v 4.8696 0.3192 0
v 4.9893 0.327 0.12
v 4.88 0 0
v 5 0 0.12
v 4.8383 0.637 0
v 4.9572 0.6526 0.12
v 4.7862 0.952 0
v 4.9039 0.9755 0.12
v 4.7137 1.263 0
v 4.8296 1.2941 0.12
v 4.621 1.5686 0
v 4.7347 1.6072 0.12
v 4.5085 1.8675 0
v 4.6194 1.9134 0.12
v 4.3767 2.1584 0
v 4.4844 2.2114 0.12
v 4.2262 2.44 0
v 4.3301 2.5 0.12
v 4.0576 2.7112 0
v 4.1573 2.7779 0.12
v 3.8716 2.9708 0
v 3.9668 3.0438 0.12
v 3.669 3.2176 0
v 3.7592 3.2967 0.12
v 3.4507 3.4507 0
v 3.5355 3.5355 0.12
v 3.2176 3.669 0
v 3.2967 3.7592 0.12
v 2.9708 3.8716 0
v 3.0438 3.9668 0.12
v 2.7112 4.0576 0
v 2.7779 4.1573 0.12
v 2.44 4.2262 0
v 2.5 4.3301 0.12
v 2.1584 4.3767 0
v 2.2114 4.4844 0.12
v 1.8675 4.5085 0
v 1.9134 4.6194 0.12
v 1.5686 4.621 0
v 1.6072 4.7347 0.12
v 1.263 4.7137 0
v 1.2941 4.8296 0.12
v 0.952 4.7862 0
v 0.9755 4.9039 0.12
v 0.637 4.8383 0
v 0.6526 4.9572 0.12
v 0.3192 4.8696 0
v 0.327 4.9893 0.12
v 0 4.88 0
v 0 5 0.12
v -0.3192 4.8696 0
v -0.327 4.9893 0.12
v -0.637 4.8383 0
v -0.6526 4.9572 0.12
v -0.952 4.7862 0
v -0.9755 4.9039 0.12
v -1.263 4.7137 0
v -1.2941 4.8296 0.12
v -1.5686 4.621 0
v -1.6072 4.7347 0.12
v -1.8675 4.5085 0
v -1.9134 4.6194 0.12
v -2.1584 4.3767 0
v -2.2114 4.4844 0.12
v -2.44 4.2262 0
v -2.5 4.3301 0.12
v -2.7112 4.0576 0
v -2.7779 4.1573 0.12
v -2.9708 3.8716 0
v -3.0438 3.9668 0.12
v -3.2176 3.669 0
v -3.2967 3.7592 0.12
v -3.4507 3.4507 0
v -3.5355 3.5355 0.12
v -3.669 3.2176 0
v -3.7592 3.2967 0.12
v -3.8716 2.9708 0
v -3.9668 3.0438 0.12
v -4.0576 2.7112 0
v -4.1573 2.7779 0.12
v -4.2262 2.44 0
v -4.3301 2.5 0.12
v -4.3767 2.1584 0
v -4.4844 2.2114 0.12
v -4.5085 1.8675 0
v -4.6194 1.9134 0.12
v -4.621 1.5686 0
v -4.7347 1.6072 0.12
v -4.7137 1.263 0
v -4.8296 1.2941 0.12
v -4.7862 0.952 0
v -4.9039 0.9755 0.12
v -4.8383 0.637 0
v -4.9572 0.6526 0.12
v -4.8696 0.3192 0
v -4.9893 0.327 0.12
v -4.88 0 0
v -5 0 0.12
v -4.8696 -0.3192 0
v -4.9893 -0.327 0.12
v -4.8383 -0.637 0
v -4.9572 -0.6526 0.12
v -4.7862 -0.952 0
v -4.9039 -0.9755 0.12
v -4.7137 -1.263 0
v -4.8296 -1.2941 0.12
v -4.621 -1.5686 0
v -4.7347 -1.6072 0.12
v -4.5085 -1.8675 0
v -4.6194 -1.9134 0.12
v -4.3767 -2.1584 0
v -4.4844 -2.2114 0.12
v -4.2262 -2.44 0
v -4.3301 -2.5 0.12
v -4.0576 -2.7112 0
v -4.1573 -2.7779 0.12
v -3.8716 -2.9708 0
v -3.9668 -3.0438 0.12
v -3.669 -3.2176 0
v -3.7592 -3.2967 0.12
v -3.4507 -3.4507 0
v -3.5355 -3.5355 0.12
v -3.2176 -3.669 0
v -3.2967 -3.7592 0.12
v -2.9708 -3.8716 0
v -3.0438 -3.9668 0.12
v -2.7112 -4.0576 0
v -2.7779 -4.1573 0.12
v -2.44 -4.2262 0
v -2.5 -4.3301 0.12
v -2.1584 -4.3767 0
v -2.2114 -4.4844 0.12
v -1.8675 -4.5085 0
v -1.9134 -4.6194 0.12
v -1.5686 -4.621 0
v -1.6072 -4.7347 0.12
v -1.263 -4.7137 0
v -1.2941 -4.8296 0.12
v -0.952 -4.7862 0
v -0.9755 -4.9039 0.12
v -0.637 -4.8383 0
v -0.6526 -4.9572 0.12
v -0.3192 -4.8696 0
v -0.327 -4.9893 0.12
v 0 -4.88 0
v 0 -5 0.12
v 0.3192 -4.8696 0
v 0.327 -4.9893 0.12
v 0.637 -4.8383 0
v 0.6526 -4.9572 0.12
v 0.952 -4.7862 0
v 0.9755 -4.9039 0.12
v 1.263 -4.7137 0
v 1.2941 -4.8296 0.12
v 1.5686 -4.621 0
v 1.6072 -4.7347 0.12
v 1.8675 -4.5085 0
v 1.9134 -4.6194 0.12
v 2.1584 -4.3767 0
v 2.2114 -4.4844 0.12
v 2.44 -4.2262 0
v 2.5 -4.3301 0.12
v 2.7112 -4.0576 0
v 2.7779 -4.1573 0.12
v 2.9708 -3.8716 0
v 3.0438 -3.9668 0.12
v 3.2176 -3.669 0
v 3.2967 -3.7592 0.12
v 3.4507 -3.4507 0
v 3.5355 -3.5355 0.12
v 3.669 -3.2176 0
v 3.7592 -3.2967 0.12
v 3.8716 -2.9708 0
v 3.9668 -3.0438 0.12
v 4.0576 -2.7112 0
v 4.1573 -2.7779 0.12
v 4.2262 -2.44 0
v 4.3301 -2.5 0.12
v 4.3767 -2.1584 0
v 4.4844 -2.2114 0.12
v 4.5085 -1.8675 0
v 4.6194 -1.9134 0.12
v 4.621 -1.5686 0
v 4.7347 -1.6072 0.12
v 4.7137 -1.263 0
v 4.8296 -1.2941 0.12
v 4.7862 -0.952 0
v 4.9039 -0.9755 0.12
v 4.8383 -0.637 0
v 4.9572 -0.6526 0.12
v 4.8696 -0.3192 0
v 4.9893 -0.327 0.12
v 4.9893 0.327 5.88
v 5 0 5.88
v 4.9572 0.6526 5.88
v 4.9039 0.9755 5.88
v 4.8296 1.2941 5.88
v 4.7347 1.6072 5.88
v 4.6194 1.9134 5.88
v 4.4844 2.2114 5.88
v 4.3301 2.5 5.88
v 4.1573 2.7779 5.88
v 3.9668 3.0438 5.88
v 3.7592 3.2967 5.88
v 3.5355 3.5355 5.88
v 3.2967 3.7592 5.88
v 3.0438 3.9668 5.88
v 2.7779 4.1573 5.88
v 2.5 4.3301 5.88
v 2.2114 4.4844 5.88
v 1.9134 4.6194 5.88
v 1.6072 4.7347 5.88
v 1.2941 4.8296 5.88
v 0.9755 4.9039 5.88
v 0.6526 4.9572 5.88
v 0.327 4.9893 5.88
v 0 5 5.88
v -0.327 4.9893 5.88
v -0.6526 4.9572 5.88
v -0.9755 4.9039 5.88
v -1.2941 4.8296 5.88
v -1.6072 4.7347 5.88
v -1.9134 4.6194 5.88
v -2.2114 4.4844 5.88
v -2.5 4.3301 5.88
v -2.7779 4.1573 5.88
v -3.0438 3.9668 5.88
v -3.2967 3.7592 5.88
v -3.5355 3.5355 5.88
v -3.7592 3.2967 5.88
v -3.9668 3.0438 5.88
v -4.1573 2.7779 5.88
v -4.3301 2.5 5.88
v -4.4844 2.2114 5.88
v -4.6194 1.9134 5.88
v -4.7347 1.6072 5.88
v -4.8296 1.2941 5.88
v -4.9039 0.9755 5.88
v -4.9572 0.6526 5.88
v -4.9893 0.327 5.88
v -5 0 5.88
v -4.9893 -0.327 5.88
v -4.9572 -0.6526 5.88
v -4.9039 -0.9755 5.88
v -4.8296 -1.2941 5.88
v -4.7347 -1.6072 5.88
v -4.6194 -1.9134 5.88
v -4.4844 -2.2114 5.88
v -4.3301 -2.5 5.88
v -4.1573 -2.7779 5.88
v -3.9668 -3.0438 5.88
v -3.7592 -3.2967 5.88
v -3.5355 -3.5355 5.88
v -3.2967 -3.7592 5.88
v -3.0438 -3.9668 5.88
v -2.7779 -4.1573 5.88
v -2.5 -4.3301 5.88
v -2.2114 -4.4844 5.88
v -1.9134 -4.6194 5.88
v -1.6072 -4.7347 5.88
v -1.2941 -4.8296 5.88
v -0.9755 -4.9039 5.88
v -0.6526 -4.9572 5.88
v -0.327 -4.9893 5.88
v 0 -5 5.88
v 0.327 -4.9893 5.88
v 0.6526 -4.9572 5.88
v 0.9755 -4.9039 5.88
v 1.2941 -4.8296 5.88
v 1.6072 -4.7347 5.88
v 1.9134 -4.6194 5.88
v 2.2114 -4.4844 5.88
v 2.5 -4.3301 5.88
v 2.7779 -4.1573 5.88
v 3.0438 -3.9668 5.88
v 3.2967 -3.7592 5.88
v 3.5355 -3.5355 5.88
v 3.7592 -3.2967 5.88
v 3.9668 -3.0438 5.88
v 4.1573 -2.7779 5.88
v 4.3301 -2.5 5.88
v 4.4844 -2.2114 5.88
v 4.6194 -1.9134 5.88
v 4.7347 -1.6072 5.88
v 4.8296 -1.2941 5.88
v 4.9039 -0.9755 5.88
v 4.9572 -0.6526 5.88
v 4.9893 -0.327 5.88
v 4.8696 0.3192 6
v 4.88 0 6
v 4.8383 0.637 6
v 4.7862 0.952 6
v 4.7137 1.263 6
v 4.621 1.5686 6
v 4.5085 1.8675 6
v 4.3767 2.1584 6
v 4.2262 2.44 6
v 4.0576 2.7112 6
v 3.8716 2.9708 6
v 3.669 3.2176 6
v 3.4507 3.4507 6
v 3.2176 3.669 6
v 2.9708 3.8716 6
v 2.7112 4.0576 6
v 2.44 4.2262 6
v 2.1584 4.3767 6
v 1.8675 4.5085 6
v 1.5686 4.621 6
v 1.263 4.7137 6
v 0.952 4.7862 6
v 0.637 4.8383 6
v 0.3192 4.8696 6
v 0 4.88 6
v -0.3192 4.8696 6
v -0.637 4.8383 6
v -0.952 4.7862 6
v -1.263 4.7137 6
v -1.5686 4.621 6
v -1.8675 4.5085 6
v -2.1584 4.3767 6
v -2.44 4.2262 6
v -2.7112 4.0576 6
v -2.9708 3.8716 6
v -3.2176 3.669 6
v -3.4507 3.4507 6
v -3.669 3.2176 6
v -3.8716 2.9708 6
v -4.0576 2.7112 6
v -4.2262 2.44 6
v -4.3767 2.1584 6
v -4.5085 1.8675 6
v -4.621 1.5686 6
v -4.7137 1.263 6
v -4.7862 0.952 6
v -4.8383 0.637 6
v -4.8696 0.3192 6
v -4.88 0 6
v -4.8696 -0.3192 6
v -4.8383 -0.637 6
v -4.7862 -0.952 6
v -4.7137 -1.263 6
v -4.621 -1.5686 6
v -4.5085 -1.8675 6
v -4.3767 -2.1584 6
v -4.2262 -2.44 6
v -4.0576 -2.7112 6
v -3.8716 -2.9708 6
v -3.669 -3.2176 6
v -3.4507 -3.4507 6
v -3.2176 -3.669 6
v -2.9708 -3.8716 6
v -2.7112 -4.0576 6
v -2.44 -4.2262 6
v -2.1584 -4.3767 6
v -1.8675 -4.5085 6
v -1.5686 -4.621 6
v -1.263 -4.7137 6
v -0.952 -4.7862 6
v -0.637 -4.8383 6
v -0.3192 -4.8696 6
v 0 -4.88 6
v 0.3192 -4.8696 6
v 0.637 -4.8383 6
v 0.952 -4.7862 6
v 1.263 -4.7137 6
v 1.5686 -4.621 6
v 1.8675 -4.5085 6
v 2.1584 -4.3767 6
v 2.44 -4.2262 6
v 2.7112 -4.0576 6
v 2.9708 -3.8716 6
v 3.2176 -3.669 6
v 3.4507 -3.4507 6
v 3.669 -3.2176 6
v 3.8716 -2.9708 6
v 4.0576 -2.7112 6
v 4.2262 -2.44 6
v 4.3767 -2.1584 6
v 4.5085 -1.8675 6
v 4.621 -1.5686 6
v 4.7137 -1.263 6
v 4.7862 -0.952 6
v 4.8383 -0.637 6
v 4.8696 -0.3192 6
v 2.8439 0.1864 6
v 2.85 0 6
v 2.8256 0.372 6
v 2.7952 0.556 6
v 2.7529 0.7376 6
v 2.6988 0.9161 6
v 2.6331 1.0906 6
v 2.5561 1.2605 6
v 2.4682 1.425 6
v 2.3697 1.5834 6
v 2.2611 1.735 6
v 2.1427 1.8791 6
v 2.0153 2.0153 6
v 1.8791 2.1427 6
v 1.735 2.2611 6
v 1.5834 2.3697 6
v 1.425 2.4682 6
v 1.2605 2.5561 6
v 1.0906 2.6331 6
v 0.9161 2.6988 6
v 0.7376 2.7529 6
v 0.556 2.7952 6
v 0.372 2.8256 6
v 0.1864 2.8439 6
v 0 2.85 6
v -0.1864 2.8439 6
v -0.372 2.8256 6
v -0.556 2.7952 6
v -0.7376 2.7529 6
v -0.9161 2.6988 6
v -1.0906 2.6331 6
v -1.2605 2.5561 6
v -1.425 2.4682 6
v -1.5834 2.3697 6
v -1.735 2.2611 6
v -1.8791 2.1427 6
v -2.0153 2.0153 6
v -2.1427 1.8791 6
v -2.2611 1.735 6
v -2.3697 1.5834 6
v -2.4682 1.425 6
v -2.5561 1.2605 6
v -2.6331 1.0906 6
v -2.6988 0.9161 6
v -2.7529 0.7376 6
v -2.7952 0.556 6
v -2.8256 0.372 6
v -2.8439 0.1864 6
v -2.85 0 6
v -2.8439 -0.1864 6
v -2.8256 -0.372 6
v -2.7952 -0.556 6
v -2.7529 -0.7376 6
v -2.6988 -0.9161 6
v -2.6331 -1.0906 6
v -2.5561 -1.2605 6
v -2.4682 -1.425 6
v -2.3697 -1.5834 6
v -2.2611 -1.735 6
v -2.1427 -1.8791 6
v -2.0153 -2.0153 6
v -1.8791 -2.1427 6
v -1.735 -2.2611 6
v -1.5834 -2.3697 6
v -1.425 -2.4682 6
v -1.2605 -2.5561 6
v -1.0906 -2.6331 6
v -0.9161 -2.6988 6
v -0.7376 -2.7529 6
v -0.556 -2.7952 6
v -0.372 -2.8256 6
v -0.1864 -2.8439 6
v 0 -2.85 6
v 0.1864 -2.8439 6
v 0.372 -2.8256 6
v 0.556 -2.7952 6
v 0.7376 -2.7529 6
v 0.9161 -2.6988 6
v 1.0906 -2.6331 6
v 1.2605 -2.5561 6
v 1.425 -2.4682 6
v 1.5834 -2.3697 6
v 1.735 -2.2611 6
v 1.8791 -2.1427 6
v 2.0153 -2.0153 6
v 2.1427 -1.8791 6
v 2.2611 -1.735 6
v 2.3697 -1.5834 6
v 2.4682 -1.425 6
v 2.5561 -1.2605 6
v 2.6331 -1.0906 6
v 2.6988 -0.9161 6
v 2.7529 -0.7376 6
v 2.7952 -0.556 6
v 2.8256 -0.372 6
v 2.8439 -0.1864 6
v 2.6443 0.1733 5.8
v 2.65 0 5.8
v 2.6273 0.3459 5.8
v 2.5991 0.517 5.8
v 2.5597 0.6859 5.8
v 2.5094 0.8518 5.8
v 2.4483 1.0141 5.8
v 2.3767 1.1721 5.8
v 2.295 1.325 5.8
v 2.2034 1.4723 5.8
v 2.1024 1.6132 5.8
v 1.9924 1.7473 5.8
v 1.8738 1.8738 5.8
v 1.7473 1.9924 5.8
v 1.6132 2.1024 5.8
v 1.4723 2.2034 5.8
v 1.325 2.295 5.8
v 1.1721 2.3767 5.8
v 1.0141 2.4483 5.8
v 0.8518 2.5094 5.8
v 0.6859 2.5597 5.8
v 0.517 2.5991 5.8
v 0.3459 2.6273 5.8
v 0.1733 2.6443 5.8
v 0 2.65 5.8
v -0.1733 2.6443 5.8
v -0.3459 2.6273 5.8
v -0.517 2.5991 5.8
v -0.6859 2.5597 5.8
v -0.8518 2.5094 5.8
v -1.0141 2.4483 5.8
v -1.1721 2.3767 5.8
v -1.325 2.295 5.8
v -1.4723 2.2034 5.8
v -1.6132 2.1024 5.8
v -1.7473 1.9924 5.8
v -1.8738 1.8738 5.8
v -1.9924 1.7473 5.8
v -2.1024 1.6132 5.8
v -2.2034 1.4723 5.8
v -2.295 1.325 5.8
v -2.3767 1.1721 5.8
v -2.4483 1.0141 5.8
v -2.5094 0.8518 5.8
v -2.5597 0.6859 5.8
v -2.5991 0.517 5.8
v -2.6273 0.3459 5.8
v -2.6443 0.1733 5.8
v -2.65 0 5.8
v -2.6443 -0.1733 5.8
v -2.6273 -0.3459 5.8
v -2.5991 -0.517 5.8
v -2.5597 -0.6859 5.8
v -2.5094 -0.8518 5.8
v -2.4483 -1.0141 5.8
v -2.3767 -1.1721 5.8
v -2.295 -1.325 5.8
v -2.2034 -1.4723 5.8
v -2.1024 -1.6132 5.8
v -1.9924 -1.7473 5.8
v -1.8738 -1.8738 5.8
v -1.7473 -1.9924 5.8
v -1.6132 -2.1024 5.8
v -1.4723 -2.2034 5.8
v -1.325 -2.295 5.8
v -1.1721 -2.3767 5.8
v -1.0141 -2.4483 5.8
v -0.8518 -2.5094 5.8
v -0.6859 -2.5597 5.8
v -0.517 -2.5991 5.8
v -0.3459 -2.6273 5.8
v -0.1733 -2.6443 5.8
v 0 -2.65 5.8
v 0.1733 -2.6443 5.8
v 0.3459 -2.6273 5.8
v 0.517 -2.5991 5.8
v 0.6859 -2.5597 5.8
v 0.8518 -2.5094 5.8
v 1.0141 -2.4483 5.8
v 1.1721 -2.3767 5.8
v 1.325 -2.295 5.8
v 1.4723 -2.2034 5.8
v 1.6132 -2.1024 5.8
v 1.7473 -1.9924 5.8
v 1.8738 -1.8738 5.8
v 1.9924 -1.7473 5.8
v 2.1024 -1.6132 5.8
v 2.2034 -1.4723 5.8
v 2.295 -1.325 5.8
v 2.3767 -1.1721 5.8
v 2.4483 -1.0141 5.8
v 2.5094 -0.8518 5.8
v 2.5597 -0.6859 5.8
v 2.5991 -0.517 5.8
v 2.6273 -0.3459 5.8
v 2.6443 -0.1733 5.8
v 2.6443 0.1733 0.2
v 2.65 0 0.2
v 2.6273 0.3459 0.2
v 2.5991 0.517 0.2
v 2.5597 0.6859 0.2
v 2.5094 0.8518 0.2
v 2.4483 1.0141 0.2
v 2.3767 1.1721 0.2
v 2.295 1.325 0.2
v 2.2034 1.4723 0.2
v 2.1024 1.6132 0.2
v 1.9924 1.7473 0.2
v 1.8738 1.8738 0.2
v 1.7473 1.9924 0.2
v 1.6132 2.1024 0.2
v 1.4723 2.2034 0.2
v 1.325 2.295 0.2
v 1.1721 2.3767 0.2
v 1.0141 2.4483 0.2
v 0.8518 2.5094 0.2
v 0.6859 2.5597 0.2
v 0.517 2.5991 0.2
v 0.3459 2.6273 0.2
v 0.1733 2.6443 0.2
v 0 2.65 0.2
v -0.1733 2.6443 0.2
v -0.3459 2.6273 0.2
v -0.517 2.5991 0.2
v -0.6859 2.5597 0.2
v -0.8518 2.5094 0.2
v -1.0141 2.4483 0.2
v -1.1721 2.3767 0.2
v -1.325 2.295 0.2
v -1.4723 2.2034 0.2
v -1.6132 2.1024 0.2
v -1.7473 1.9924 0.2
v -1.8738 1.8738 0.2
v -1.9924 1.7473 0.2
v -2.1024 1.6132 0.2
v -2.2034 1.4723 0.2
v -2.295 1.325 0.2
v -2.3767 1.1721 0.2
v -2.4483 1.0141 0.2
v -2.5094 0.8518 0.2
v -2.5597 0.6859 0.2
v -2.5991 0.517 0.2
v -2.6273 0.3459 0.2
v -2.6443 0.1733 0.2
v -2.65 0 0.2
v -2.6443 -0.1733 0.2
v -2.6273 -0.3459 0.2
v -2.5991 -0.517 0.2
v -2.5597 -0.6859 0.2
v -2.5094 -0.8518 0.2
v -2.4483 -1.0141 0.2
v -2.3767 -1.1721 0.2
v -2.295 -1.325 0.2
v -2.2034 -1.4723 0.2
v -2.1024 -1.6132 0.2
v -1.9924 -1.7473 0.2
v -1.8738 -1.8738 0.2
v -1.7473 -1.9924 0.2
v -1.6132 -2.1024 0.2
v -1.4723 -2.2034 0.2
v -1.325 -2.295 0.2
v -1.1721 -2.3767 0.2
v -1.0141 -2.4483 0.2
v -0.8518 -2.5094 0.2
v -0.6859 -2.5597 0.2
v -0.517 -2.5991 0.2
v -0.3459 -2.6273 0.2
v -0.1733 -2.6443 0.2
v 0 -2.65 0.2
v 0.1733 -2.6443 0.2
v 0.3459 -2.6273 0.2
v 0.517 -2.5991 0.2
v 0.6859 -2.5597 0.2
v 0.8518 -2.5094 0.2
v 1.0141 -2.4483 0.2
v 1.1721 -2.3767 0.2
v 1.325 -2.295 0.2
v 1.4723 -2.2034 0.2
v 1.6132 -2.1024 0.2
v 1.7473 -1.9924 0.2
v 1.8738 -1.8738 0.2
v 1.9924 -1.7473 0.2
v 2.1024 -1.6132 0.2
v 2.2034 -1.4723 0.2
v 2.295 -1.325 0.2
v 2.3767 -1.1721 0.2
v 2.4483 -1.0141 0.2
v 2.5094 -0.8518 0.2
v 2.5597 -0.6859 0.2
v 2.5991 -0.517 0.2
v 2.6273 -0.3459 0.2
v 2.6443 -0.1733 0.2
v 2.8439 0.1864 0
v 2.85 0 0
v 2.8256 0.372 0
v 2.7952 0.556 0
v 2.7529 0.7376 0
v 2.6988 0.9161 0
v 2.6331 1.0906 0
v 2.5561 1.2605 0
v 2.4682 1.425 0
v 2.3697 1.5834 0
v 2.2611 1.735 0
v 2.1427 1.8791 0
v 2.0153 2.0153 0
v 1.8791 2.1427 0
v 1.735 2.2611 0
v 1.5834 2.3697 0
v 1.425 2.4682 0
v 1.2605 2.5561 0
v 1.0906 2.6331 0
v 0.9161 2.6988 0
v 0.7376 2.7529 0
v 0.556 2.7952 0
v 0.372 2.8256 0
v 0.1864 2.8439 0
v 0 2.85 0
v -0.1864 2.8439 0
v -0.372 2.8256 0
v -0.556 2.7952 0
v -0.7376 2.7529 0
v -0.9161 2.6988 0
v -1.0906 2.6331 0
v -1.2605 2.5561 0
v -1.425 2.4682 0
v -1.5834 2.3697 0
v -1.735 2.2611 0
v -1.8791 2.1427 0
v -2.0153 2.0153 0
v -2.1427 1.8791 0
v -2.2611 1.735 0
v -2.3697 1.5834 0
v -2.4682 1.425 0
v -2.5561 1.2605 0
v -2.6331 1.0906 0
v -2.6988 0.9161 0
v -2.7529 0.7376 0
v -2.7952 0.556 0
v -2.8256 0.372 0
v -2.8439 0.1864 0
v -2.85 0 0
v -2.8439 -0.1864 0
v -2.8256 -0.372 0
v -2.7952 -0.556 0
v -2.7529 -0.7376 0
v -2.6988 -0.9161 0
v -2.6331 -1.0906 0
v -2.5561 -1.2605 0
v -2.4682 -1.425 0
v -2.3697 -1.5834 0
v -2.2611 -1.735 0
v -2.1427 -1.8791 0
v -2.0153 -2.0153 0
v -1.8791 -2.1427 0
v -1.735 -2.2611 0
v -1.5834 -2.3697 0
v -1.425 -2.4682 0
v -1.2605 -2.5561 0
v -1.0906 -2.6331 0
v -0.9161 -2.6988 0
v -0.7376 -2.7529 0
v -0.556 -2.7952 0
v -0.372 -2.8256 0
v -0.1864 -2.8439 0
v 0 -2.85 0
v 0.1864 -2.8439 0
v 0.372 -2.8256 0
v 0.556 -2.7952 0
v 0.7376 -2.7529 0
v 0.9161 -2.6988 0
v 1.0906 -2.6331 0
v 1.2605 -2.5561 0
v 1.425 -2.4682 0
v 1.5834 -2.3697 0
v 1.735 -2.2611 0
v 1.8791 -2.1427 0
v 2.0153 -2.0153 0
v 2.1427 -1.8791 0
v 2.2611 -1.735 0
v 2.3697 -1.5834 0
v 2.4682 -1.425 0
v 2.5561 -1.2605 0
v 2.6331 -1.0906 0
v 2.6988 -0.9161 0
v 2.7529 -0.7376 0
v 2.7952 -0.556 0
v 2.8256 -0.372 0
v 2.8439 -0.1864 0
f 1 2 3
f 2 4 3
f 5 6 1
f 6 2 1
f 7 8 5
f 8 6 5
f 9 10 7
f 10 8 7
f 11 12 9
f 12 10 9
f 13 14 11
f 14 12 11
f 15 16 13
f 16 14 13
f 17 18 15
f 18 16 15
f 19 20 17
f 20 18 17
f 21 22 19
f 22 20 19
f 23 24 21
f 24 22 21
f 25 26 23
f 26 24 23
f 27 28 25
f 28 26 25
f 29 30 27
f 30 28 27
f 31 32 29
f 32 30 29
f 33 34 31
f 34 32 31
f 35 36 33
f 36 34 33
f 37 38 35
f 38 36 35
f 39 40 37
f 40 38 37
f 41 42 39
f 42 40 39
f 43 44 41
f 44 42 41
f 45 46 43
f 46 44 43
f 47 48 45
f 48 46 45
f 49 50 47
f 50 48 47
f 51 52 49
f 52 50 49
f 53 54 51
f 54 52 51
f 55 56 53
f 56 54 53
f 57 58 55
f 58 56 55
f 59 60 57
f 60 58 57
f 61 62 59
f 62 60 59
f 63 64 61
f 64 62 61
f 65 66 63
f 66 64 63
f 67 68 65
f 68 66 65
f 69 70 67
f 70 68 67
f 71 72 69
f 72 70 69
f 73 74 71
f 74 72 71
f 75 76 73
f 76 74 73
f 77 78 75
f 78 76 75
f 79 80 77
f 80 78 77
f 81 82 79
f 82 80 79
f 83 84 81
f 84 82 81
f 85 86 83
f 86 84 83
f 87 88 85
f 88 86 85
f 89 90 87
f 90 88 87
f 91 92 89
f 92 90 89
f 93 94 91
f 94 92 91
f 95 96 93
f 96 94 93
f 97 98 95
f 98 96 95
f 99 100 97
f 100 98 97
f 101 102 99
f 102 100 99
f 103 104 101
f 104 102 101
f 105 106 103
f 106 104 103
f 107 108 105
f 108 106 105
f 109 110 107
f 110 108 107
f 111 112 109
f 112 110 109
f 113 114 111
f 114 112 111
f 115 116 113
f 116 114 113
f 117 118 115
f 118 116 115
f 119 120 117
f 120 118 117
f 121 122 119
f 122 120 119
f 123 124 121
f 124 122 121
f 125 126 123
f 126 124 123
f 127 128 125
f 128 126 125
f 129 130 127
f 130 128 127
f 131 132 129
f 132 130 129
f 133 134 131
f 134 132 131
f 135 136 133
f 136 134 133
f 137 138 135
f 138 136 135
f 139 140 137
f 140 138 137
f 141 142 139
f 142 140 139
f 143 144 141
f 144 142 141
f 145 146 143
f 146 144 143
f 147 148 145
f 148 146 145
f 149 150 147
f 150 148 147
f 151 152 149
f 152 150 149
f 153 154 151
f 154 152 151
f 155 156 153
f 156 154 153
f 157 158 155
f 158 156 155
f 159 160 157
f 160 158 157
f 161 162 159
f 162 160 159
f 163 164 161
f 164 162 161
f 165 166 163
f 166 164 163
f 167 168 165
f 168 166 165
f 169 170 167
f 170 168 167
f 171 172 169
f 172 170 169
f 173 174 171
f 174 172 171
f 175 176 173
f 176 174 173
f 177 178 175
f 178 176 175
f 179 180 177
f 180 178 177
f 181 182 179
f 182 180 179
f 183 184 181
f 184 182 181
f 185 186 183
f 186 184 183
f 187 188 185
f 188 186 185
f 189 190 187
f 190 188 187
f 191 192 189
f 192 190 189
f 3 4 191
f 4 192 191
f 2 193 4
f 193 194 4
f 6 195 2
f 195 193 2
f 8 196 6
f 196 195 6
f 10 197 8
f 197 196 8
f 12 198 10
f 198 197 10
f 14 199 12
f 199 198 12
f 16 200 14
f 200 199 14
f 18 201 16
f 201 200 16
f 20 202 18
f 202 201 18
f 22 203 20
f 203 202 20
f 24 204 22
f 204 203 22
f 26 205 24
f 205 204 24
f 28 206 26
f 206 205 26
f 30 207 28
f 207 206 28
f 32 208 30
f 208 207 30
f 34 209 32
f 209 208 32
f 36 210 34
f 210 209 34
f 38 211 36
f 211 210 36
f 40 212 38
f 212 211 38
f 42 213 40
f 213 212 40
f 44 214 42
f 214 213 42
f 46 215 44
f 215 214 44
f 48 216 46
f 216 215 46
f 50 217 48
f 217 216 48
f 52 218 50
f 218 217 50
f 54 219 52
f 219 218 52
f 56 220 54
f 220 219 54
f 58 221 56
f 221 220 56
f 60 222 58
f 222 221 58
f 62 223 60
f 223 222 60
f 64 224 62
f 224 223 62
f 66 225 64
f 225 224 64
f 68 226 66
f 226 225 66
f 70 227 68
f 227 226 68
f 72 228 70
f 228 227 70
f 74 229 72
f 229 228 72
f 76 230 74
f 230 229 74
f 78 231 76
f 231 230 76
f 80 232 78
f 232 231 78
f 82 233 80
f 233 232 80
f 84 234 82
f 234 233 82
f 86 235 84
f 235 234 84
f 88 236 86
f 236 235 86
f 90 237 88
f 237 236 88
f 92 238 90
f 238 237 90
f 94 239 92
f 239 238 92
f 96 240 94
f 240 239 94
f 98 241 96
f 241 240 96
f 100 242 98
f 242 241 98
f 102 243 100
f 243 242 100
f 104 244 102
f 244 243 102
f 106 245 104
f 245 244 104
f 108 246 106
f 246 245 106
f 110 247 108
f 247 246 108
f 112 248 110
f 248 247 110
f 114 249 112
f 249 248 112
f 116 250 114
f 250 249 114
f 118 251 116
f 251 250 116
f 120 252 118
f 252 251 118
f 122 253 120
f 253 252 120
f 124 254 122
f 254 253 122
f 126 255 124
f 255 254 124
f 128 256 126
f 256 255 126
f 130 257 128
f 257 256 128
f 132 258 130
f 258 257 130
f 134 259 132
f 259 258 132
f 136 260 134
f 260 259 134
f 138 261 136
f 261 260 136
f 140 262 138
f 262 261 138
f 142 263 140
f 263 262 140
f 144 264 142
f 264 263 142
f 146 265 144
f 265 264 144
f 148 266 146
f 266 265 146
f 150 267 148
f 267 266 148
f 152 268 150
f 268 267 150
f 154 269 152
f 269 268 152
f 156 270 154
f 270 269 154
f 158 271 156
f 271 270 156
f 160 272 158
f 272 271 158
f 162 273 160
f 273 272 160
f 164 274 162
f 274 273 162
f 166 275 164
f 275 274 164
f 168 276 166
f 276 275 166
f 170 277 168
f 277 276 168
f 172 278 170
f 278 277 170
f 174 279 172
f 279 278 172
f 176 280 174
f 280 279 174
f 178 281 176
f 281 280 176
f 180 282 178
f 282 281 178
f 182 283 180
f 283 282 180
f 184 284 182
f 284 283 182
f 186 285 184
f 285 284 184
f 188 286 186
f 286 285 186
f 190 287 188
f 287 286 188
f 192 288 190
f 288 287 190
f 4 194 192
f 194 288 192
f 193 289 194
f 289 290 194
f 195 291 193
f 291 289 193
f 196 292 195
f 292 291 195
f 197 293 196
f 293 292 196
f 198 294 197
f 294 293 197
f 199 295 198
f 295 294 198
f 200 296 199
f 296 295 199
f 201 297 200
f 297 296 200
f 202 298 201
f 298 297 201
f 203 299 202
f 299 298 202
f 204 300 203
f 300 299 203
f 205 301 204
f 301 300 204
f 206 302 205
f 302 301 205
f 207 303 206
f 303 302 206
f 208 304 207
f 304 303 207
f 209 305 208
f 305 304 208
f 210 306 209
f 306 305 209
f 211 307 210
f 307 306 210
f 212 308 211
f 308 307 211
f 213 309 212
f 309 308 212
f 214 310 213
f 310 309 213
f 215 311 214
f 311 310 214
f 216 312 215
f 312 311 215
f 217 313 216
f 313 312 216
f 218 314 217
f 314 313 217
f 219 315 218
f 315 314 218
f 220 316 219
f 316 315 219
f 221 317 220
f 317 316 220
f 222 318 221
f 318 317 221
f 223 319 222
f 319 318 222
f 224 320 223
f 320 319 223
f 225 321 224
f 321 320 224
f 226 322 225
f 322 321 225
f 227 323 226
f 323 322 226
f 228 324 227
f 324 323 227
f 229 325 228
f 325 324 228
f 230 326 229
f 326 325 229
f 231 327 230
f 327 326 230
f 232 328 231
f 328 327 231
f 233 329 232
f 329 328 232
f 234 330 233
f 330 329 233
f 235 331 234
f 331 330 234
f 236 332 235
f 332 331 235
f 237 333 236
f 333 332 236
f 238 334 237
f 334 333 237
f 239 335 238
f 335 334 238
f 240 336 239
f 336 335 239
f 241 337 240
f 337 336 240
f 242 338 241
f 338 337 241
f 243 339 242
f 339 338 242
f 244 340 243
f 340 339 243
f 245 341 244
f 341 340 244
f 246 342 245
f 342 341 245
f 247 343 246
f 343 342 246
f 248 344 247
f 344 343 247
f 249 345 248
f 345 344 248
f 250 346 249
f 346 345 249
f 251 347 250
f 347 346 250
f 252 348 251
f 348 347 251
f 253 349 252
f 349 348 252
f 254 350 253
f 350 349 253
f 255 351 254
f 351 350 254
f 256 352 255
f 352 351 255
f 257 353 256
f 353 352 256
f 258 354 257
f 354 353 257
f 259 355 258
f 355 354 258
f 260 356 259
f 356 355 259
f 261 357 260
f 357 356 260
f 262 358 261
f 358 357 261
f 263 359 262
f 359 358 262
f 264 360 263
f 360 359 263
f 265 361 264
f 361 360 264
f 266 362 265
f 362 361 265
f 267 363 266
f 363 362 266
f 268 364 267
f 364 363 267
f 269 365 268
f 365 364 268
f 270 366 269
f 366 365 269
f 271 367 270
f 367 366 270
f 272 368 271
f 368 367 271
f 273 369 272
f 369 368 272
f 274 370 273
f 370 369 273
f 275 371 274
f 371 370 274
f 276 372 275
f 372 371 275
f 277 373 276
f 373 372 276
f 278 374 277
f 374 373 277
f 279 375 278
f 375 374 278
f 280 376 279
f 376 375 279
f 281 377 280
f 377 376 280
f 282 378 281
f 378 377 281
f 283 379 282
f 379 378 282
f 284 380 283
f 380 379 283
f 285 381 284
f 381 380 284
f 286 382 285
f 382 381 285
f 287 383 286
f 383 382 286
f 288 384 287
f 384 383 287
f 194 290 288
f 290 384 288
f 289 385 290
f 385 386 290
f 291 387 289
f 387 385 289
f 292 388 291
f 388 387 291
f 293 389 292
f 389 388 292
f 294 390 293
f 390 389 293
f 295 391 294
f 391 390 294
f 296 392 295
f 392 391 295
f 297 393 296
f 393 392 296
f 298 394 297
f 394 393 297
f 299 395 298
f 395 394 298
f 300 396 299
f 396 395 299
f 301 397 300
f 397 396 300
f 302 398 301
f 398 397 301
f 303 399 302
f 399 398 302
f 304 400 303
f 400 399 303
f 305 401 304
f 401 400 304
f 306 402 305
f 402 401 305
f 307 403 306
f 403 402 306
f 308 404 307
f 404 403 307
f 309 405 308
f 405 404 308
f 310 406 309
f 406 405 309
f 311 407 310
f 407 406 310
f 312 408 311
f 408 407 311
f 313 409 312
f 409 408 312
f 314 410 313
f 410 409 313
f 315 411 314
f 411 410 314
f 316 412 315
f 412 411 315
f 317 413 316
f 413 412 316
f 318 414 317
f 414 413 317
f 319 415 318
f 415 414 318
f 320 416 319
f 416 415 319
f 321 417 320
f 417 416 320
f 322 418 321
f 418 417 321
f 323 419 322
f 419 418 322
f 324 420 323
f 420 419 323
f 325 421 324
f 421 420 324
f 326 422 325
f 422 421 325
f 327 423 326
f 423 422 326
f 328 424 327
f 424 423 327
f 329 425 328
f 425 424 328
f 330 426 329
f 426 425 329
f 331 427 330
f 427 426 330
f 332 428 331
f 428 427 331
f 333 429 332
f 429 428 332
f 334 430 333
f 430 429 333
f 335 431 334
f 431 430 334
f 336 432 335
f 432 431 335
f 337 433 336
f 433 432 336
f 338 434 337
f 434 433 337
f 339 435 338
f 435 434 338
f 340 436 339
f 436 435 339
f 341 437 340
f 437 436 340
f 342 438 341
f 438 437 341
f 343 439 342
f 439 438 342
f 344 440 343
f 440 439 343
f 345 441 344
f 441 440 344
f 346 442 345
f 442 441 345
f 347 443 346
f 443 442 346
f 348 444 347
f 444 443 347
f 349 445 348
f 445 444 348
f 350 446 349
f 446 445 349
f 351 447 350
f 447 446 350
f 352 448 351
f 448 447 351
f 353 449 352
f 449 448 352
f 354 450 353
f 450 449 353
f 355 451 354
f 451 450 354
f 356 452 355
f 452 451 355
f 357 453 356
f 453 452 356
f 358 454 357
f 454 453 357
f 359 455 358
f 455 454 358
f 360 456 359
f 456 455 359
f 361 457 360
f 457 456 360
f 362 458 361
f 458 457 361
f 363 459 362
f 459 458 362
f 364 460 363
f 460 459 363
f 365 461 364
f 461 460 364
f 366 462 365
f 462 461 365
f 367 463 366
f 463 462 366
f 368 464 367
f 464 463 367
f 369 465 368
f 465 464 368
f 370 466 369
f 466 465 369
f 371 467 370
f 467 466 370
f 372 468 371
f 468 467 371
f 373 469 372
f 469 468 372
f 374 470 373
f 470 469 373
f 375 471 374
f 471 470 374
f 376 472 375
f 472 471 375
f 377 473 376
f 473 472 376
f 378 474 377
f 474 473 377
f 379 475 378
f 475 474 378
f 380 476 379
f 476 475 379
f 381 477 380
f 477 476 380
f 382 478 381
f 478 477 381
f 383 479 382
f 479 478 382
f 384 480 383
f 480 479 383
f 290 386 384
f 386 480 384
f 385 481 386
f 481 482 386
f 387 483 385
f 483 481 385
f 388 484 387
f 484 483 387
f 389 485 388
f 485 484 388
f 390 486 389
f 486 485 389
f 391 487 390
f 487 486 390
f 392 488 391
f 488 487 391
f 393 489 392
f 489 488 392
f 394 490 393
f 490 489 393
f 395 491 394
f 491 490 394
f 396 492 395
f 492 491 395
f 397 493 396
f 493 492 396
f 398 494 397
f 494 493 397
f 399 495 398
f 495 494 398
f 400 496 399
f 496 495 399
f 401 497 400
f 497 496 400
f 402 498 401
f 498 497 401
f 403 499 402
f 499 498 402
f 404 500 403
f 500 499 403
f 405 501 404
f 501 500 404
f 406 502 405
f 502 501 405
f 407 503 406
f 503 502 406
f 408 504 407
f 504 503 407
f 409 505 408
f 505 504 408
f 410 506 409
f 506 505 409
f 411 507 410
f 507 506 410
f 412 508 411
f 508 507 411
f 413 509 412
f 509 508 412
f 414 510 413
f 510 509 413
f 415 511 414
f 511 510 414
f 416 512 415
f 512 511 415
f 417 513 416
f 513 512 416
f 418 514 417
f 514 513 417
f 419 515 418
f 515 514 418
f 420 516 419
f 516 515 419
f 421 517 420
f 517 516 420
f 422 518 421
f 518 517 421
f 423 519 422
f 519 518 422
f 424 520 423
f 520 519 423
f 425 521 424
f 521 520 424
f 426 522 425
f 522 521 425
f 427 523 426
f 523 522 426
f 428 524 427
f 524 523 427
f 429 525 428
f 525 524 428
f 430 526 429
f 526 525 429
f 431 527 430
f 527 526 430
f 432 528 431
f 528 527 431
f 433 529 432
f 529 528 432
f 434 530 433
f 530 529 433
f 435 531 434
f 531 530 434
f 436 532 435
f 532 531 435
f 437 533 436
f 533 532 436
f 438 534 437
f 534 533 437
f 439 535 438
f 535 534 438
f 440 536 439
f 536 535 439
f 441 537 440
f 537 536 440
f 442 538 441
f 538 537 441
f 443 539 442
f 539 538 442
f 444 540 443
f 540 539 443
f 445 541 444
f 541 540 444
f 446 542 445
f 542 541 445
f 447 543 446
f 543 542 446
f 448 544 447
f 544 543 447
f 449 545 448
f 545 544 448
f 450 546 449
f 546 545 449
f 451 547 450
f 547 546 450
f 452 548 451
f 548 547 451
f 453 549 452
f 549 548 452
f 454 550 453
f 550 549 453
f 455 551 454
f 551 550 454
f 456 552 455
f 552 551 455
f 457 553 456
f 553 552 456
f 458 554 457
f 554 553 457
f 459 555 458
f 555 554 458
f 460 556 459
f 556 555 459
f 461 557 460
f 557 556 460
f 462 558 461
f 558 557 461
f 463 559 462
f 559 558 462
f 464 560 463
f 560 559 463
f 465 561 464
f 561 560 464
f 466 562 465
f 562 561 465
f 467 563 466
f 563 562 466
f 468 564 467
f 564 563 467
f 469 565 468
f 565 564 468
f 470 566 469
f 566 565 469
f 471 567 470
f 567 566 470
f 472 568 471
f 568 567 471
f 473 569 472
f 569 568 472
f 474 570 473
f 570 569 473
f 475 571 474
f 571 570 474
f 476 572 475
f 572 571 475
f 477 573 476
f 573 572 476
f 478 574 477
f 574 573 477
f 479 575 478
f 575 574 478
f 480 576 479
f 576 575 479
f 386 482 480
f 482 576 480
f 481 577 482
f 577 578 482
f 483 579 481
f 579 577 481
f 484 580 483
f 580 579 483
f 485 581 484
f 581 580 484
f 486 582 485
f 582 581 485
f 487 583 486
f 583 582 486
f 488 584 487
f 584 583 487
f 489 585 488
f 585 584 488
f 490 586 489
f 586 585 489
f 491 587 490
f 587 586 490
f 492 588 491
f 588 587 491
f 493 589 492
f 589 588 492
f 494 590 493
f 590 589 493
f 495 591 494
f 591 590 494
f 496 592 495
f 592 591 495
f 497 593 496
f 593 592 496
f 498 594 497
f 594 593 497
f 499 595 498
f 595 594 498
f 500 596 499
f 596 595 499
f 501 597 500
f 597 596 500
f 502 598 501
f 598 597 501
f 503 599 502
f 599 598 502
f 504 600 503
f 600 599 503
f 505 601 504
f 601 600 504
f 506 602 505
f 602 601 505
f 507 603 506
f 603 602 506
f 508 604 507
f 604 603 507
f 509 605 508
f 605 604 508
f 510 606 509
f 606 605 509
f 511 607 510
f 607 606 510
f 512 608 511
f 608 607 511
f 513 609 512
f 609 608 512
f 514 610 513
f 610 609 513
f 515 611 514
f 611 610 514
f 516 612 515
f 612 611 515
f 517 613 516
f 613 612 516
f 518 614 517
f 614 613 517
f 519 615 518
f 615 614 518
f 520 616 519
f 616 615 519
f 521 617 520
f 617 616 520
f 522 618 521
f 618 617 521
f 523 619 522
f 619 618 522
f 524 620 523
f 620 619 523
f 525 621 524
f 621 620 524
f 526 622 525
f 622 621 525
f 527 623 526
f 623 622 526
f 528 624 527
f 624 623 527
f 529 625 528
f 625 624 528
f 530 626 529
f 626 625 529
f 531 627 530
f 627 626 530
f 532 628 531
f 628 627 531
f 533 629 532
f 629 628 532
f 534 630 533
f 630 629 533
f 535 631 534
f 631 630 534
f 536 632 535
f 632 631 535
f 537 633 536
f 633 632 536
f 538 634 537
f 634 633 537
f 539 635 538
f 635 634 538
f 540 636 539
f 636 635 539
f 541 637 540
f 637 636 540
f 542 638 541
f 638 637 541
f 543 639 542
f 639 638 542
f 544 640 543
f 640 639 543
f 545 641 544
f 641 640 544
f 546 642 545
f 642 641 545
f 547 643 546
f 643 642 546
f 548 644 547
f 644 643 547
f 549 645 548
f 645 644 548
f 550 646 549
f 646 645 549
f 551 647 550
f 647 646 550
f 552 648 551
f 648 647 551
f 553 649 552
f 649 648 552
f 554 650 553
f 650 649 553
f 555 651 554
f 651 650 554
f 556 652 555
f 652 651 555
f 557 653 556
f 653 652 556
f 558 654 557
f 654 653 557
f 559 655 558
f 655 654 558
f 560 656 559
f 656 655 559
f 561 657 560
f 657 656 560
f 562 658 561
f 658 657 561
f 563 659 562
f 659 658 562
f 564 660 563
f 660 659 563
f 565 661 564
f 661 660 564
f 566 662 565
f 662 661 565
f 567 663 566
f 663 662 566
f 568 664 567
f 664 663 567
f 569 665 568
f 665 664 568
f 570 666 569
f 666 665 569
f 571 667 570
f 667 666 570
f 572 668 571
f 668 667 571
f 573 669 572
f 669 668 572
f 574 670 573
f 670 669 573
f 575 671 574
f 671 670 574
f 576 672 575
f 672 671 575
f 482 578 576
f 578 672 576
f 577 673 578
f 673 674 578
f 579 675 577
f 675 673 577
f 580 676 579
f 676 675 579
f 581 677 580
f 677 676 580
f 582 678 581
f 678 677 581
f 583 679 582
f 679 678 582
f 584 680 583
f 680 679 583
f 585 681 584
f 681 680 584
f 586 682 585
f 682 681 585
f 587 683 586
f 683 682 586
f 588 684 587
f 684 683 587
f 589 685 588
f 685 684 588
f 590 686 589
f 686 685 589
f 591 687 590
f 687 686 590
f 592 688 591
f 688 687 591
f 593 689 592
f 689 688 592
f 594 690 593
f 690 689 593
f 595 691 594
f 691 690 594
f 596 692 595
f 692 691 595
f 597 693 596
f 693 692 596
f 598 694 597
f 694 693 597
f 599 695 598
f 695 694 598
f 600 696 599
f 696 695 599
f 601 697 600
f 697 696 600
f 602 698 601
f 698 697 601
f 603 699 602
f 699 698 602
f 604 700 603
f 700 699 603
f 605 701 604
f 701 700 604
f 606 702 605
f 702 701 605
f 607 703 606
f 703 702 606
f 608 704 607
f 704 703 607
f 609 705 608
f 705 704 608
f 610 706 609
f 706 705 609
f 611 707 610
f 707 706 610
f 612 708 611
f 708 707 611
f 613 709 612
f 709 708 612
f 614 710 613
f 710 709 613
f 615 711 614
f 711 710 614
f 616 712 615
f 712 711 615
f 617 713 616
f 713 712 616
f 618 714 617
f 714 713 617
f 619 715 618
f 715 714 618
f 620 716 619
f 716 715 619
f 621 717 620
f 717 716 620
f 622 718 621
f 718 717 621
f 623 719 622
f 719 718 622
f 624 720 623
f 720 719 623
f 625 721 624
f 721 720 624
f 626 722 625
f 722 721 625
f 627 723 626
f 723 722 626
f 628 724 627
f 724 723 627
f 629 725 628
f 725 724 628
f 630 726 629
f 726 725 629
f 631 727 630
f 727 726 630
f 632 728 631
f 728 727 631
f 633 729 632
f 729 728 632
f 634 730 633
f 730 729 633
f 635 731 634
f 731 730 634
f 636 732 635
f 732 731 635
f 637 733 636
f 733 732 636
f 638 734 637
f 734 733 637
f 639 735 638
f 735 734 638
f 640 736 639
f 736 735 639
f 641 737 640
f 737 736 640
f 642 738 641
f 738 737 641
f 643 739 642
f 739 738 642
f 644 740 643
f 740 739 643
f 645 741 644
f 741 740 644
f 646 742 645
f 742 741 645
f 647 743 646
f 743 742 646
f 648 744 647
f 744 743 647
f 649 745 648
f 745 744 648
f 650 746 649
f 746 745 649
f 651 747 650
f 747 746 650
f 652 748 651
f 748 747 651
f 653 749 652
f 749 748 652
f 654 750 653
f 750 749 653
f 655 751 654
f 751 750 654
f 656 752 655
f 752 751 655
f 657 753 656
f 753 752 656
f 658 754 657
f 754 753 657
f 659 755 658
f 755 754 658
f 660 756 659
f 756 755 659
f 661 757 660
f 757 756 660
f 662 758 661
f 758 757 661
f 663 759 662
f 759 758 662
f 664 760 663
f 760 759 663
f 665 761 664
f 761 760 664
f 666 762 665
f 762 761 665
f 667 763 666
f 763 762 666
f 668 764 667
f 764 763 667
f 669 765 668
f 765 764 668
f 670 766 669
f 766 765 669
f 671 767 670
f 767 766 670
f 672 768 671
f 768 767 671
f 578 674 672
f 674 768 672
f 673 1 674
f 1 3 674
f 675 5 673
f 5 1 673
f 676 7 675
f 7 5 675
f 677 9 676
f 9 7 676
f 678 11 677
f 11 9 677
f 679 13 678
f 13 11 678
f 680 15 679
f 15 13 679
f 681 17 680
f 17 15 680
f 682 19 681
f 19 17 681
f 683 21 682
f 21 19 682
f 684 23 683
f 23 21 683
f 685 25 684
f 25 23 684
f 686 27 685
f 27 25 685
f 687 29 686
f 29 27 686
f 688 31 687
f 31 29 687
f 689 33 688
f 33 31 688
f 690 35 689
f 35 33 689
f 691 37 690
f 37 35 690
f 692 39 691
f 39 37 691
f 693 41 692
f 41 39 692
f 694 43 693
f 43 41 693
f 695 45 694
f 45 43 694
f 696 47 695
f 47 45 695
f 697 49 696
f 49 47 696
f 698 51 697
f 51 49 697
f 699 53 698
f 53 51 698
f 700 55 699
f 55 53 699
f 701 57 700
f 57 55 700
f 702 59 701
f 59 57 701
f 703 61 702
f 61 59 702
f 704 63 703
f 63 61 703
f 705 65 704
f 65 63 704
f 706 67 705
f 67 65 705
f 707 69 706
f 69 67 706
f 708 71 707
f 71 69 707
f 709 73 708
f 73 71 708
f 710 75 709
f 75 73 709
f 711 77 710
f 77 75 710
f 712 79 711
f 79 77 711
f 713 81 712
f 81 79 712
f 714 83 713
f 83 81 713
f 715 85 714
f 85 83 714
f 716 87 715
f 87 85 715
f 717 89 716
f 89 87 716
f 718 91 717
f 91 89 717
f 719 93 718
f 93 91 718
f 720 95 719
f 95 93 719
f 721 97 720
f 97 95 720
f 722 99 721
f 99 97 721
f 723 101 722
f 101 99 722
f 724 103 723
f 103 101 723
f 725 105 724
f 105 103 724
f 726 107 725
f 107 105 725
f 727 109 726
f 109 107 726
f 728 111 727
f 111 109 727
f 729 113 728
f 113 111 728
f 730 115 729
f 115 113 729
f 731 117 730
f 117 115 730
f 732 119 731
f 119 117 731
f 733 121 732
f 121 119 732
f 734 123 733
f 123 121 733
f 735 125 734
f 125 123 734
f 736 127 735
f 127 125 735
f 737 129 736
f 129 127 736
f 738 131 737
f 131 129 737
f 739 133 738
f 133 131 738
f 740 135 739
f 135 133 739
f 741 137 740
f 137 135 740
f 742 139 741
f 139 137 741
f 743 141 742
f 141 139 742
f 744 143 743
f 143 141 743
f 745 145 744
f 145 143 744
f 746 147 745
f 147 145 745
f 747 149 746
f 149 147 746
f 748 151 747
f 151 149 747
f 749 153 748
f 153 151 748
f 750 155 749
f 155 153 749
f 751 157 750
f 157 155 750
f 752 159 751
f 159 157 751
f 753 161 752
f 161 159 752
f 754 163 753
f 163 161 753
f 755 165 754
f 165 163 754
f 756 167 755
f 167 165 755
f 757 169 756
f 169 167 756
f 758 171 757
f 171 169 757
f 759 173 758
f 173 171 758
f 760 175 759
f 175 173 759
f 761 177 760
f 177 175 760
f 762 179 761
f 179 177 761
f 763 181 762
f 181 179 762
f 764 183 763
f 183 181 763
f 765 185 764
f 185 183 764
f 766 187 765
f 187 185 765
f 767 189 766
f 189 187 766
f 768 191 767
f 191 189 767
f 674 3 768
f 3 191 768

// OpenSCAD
// OOMP generic catalogue model; units: mm.
// Stud length is additional to body depth. Tapping depths are model assumptions.
variant = "full"; // [full, display]
family = "spacer";
connection_type = "plain";
depth_mm = 6;
stud_length_mm = 0;
tapped_depth_mm = 0;
bore_mm = 5.3;
outer_diameter_mm = 10;
across_flats_mm = 6;
thread_nominal_diameter_mm = 3;
thread_pitch_mm = 0.5;
edge_chamfer_mm = 0.12;
mouth_chamfer_mm = 0.2;
angular_segments = 96;
samples_per_pitch = 16;

// Boundary travels up the outside, then down any tapped/plain bore.
// Equal-height rings at shoulders form the annular shoulder faces.
n = angular_segments;
threaded = family == "standoff";
has_stud = connection_type == "stud_to_tapped" || connection_type == "stud_to_stud";
two_studs = connection_type == "stud_to_stud";
through = !threaded || connection_type == "tapped_to_tapped";
pitch = thread_pitch_mm;
diameter = threaded ? thread_nominal_diameter_mm : bore_mm;
minor = diameter - 5*sqrt(3)*pitch/8;
transition = mouth_chamfer_mm + (threaded ? 5*sqrt(3)*pitch/16 : 0);
tip_chamfer = mouth_chamfer_mm + 17*sqrt(3)*pitch/48;
function sorted(v) = len(v)<=1 ? v : let(p=v[0])
    concat(sorted([for(x=v) if(x<p-1e-8) x]), [p], sorted([for(x=v) if(x>p+1e-8) x]));
function reverse(v) = [for(i=[len(v)-1:-1:0]) v[i]];
function theta(i) = i*360/n;
function fract(x) = x-floor(x);
function phase_distance(i,z) = abs(fract(z/pitch-theta(i)/360+0.5)-0.5);
function thread_r(i,z) = minor/2 + min(5*sqrt(3)*pitch/16,
    max(0,(phase_distance(i,z)-0.125)*pitch*sqrt(3)));
function stud_r(i,z,tip) = min(diameter/2 - (variant=="full" ?
    min(17*sqrt(3)*pitch/48,max(0,(phase_distance(i,z)-0.0625)*pitch*sqrt(3))) : 0),
    diameter/2-tip_chamfer+abs(z-tip));
function body_r(i,z) = (threaded ? across_flats_mm/2/cos(theta(i)%60-30) : outer_diameter_mm/2)
    - max(0,edge_chamfer_mm-min(z,depth_mm-z));
function bore_r(i,z) = max(threaded ? (variant=="full" ? thread_r(i,z) : minor/2) : diameter/2,
    diameter/2+mouth_chamfer_mm-(through ? min(z,depth_mm-z) : depth_mm-z));
function stud_z(a,b,tip) = let(count=variant=="full" ? ceil(stud_length_mm/pitch*samples_per_pitch) : 1)
    sorted(concat([for(i=[0:count]) a+(b-a)*i/count], [tip==a ? tip+tip_chamfer : tip-tip_chamfer]));
body_z = sorted([0,edge_chamfer_mm,depth_mm-edge_chamfer_mm,depth_mm]);
low = through ? 0 : depth_mm-tapped_depth_mm;
count = threaded && variant=="full" ? ceil((depth_mm-low)/pitch*samples_per_pitch) : 1;
bore_z = two_studs ? [] : reverse(sorted(concat(
    [for(i=[0:count]) low+(depth_mm-low)*i/count],
    [depth_mm-mouth_chamfer_mm,depth_mm-transition],
    through ? [mouth_chamfer_mm,transition] : [])));
// Ring descriptors: [height, kind, tip]. Kind: 0 body, 1 stud, 2 bore.
rings = concat(
    has_stud ? [for(z=stud_z(-stud_length_mm,0,-stud_length_mm)) [z,1,-stud_length_mm]] : [],
    [for(z=body_z) [z,0,0]],
    two_studs ? [for(z=stud_z(depth_mm,depth_mm+stud_length_mm,depth_mm+stud_length_mm)) [z,1,depth_mm+stud_length_mm]] : [],
    [for(z=bore_z) [z,2,0]]);
function radius(i,ring) = ring[1]==0 ? body_r(i,ring[0]) :
    ring[1]==1 ? stud_r(i,ring[0],ring[2]) : bore_r(i,ring[0]);
points = concat([for(ring=rings) for(i=[0:n-1])
    [radius(i,ring)*cos(theta(i)),radius(i,ring)*sin(theta(i)),ring[0]]],
    through ? [] : [[0,0,rings[0][0]],[0,0,rings[len(rings)-1][0]]]);
center = len(rings)*n;
last = (len(rings)-1)*n;
// OpenSCAD winding is opposite to STL winding.
faces = concat(
    [for(j=[0:len(rings)-(through ? 1 : 2)]) for(i=[0:n-1]) each
        let(a=j*n+i,b=j*n+(i+1)%n,c=((j+1)%len(rings))*n+(i+1)%n,d=((j+1)%len(rings))*n+i)
        [[a,c,b],[a,d,c]]],
    through ? [] : [for(i=[0:n-1]) each let(k=(i+1)%n)
        [[center,i,k],[center+1,last+k,last+i]]]);
assert(family=="spacer" || family=="standoff");
assert(!threaded || connection_type=="tapped_to_tapped" || has_stud);
assert(depth_mm>0 && diameter>0 && pitch>0);
assert(variant=="full" || variant=="display");
assert(n>=24 && n%12==0 && samples_per_pitch>=8);
assert(mouth_chamfer_mm>0 && mouth_chamfer_mm<depth_mm/2);
assert(edge_chamfer_mm>=0 && edge_chamfer_mm<depth_mm/2);
assert(diameter+4*max(mouth_chamfer_mm,edge_chamfer_mm) < (threaded ? across_flats_mm : outer_diameter_mm));
assert(!has_stud || stud_length_mm>2*mouth_chamfer_mm);
assert(!through || !threaded || 2*transition<depth_mm);
assert(connection_type!="stud_to_tapped" || (tapped_depth_mm>transition && tapped_depth_mm<depth_mm));
color([0.86,0.85,0.81]) polyhedron(points=points,faces=faces,convexity=20);
